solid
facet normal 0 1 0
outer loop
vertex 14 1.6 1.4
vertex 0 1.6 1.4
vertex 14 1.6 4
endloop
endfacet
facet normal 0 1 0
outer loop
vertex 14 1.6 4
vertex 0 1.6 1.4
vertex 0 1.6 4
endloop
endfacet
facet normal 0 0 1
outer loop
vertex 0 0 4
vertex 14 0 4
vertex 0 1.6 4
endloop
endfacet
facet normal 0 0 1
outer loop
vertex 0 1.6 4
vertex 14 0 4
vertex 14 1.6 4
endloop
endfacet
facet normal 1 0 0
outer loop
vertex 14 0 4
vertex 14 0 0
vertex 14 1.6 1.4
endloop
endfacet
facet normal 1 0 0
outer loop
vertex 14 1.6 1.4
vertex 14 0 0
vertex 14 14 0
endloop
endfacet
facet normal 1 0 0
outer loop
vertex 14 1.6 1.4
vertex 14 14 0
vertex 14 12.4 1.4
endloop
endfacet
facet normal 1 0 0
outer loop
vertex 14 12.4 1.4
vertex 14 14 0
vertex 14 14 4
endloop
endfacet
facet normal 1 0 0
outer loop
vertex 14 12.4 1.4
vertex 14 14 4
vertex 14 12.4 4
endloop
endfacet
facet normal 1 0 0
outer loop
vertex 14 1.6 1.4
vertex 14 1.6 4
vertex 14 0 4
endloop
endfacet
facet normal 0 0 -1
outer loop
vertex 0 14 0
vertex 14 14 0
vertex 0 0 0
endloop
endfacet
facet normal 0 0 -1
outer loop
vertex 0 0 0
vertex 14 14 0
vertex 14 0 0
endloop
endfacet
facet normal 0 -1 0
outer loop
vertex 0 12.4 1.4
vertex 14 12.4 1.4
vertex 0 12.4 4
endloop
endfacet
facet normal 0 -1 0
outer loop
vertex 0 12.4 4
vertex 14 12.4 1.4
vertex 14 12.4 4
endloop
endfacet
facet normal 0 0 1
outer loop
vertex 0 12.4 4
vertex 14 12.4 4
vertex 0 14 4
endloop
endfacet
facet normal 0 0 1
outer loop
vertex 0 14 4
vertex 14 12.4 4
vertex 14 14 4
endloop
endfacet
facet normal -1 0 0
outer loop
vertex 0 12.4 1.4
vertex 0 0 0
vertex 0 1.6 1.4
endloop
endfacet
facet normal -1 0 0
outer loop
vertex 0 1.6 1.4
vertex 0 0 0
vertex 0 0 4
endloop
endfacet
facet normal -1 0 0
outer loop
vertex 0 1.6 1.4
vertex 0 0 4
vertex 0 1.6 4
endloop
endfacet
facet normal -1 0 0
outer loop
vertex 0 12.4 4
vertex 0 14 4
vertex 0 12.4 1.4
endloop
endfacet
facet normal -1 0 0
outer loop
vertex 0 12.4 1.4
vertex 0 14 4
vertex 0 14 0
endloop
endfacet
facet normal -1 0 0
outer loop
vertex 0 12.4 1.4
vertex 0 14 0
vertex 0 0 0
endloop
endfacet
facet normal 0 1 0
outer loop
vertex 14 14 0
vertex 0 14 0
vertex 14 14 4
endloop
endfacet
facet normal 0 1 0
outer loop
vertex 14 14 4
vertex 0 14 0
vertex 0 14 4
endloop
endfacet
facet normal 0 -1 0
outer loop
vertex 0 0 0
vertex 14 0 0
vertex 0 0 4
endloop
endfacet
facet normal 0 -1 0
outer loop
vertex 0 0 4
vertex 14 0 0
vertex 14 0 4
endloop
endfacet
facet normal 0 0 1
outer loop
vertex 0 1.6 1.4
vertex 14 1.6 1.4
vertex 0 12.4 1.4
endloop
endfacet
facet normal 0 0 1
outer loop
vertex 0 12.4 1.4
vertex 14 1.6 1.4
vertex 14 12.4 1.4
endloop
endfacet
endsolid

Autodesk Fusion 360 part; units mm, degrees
sketch "Sketch1" plane through (0, 0, 0) normal (0, 0, 1) x (1, 0, 0)
  line L0 (0, 0) -> (14, 0)
  line L1 (14, 0) -> (14, 14)
  line L2 (14, 14) -> (0, 14)
  line L3 (0, 14) -> (0, 0)
  line L4 (0, 12.4) -> (14, 12.4)
  line L5 (0, 1.6) -> (14, 1.6)
  dimension "d1" = 14
  dimension "d2" = 14
  dimension "d3" = 1.6
  dimension "d4" = 1.6
extrude "Extrude1" add sketch "Sketch1" along normal blind 1.4
extrude "Extrude2" add sketch "Sketch1" along normal blind 4 contours L0 L1 L3 L5 | L1 L2 L3 L4
